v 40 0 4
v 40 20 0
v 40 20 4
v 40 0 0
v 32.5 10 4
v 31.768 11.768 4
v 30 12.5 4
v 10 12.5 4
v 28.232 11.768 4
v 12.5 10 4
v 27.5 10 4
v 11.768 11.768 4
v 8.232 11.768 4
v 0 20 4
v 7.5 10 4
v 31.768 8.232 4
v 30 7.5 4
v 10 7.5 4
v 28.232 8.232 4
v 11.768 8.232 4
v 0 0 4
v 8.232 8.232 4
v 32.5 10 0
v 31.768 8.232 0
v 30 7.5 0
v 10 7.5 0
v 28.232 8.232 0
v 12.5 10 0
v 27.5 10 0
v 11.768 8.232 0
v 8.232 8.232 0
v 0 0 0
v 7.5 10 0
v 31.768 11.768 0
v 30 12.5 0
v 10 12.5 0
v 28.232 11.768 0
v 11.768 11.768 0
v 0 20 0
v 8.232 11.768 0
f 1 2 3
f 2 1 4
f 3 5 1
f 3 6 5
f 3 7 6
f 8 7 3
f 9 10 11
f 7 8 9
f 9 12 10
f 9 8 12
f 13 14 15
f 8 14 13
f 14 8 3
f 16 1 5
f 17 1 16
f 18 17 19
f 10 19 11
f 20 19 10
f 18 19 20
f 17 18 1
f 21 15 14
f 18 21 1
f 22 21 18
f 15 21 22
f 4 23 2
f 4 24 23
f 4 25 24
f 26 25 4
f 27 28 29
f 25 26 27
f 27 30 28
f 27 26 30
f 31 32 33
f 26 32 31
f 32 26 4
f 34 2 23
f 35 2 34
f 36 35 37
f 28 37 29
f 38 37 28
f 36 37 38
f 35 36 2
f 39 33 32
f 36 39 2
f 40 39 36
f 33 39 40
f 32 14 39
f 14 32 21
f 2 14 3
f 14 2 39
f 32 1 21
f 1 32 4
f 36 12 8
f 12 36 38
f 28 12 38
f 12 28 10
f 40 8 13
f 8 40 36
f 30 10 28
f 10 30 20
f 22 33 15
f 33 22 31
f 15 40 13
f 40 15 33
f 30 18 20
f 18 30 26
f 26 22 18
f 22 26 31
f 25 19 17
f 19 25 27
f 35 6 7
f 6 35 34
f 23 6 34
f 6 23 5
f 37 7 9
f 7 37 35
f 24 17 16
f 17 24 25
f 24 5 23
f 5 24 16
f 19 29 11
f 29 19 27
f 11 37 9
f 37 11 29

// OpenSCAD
// Simple rectangular mounting bracket with two holes
// edge_offset: distance from each hole center to the bracket edge
module mounting_bracket(length=40, width=20, thickness=4, hole_d=5, edge_offset=10) {
    difference() {
        cube([length, width, thickness]);
        translate([edge_offset, width/2, 0])
            cylinder(d=hole_d, h=thickness + 1);
        translate([length - edge_offset, width/2, 0])
            cylinder(d=hole_d, h=thickness + 1);
    }
}

mounting_bracket();
